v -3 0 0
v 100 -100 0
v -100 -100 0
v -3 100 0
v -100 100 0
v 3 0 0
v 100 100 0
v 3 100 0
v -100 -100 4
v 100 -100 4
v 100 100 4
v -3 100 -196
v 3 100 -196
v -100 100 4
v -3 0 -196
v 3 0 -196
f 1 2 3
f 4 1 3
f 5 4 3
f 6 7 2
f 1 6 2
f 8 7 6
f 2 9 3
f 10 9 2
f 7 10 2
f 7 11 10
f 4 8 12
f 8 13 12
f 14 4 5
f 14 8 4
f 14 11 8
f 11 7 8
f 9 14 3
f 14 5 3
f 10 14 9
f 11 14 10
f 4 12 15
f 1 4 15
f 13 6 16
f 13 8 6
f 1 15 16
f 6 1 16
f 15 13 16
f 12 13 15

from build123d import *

# Parameters (mm, degrees)
SZKIC1_W                    = 100
SZKIC1_H                    = 100
DODANIE_WYCI_GNI_CIE1_DEPTH = 4
DODANIE_WYCI_GNI_CIE2_DEPTH = 196


with BuildPart() as part:
    # Szkic1 → Dodanie-wyciągnięcie1 (new body)
    with BuildSketch(Plane.XY):
        with Locations((-50, 50)):
            Rectangle(SZKIC1_W, SZKIC1_H)
        with Locations((50, 50)):
            Rectangle(SZKIC1_W, SZKIC1_H)
        with Locations((50, -50)):
            Rectangle(SZKIC1_W, SZKIC1_H)
        with Locations((-50, -50)):
            Rectangle(SZKIC1_W, SZKIC1_H)
    extrude(amount=DODANIE_WYCI_GNI_CIE1_DEPTH)

    # Szkic2 → Dodanie-wyciągnięcie2 (add)
    with BuildSketch(Plane(origin=(0, 0, 0), x_dir=(-1, 0, 0), z_dir=(0, 0, -1))):
        Polygon((0, 0), (3, 0), (3, 100), (-3, 100), (-3, 0), align=None)
    extrude(amount=DODANIE_WYCI_GNI_CIE2_DEPTH)


solid = part.part
